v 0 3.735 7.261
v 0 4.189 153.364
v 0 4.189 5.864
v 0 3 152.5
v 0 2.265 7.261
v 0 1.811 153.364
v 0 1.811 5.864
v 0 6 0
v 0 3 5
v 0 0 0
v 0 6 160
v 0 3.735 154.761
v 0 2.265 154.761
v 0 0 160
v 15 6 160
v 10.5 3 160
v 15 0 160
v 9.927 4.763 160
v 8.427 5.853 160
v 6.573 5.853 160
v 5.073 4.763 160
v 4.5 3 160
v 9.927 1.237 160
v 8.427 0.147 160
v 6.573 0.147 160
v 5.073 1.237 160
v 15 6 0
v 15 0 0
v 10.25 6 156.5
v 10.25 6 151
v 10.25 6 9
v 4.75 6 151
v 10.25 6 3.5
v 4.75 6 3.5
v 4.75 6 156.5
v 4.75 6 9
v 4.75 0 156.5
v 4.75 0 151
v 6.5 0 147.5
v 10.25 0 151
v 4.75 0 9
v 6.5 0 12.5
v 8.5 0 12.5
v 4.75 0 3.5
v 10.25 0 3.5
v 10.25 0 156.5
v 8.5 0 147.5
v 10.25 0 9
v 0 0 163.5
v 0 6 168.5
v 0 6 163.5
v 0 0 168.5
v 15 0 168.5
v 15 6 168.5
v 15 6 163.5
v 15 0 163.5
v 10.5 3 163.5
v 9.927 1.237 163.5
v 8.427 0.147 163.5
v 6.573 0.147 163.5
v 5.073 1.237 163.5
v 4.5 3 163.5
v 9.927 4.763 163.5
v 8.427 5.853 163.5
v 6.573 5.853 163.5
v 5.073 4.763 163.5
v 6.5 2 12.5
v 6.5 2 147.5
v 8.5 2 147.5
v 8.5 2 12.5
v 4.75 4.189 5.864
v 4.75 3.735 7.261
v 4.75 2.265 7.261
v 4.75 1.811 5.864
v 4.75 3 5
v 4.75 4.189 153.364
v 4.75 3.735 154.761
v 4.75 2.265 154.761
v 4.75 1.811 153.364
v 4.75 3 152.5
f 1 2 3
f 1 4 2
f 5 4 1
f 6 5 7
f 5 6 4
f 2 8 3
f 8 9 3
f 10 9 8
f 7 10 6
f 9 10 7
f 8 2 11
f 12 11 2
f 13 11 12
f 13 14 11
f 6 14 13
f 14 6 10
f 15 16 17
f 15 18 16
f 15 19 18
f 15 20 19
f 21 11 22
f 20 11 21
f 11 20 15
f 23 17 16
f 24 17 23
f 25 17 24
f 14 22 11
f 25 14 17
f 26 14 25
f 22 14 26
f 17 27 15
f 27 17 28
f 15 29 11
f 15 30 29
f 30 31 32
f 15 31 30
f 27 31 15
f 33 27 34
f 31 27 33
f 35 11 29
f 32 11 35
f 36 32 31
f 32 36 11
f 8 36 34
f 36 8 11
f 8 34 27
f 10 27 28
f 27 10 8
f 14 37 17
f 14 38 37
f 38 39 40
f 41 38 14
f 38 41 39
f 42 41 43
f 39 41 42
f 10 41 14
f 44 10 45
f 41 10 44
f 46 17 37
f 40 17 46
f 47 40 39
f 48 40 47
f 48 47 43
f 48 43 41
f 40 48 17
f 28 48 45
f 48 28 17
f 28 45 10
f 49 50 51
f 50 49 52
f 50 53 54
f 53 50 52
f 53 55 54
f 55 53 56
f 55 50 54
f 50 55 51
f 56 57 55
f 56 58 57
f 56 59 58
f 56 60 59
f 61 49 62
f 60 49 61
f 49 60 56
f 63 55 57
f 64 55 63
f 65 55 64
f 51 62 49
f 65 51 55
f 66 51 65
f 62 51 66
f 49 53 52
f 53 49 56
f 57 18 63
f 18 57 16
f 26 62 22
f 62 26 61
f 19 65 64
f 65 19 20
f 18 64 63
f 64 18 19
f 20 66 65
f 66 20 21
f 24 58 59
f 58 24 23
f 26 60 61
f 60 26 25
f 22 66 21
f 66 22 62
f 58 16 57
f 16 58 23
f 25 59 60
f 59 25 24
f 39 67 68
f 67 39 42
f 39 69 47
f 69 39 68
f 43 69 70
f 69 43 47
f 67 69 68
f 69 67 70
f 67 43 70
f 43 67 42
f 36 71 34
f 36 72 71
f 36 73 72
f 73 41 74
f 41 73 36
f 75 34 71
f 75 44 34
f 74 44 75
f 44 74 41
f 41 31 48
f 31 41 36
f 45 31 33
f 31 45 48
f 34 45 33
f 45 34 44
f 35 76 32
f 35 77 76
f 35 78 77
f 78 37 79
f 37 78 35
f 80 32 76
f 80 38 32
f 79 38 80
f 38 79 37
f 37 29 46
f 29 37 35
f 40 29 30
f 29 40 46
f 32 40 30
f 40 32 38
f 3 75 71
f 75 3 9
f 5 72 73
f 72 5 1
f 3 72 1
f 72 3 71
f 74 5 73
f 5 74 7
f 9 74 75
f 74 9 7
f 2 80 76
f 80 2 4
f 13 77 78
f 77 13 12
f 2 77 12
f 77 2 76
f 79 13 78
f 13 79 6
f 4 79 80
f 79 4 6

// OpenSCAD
/////////////////////////////////////////////////////////////////////////////////
// Adapter for drilling machine in the embedded lab.
//
// Author:              Maximilian Stiefel
// Last modification:   10.06.2017
/////////////////////////////////////////////////////////////////////////////////

/////////////////////////////////////////////////////////////////////////////////
// Vars
/////////////////////////////////////////////////////////////////////////////////
// Dimesions holder
holder_height = 160;
holder_width = 15;
holder_depth = 6;

// Dimensions notch
notch_height = 135;
notch_width = 2;
notch_depth = 3;

// General allowance
allowance = 0.5;

// Dimensions crossbar
crossbar_height = 5 + allowance;
crossbar_width = 5 + allowance;

// Dimensions lid
lid_thickness = 3;
lid_slot_width = 8;

// Dimensions neck
neck_diameter = holder_depth;
neck_height = lid_thickness + allowance;

// Dimensions head 
head_width = holder_width;
head_depth = holder_depth;
head_height = 5;

// Suitable for M3 screw thread
hole_diameter = 2.5;

// Height difference between notch for PCB and the actual holder
height_diff_1 = holder_height - notch_height;

// Width difference between crossbar and holder
width_diff_1 = holder_width - crossbar_width;

/////////////////////////////////////////////////////////////////////////////////
// Action
/////////////////////////////////////////////////////////////////////////////////
difference()
{
union()
{
	// Cube for the base holder
	cube([holder_width, holder_depth, holder_height], center = false);
	// Head
	translate([0, 0, holder_height + neck_height])
	cube([head_width, head_depth, head_height]);
	// Neck
	translate([holder_width/2, holder_depth/2, holder_height])
	cylinder(h = neck_height, r = neck_diameter/2);
}

union()
{
	// Cube for notch
	translate([holder_width/2 - notch_width/2, -1, height_diff_1/2])
	cube([notch_width, notch_depth, notch_height], center = false);

	// Slots for crossbars
	translate([width_diff_1/2, -1, (1/4)*height_diff_1 - crossbar_height/2])
	cube([crossbar_width, holder_depth + 2, crossbar_height], center = false);
	translate([width_diff_1/2, -1, (3/4)*height_diff_1 + notch_height - crossbar_height/2])
	cube([crossbar_width, holder_depth + 2, crossbar_height], center = false);

	// Drill holes for screws
	translate([-1, holder_depth/2, (1/4)*height_diff_1])
	rotate([0, 90, 0])
	cylinder(h = 9, r = hole_diameter/2);
	translate([0, holder_depth/2,(3/4)*height_diff_1 + notch_height])
	rotate([0, 90, 0])
	cylinder(h = 9, r = hole_diameter/2);
}
}
